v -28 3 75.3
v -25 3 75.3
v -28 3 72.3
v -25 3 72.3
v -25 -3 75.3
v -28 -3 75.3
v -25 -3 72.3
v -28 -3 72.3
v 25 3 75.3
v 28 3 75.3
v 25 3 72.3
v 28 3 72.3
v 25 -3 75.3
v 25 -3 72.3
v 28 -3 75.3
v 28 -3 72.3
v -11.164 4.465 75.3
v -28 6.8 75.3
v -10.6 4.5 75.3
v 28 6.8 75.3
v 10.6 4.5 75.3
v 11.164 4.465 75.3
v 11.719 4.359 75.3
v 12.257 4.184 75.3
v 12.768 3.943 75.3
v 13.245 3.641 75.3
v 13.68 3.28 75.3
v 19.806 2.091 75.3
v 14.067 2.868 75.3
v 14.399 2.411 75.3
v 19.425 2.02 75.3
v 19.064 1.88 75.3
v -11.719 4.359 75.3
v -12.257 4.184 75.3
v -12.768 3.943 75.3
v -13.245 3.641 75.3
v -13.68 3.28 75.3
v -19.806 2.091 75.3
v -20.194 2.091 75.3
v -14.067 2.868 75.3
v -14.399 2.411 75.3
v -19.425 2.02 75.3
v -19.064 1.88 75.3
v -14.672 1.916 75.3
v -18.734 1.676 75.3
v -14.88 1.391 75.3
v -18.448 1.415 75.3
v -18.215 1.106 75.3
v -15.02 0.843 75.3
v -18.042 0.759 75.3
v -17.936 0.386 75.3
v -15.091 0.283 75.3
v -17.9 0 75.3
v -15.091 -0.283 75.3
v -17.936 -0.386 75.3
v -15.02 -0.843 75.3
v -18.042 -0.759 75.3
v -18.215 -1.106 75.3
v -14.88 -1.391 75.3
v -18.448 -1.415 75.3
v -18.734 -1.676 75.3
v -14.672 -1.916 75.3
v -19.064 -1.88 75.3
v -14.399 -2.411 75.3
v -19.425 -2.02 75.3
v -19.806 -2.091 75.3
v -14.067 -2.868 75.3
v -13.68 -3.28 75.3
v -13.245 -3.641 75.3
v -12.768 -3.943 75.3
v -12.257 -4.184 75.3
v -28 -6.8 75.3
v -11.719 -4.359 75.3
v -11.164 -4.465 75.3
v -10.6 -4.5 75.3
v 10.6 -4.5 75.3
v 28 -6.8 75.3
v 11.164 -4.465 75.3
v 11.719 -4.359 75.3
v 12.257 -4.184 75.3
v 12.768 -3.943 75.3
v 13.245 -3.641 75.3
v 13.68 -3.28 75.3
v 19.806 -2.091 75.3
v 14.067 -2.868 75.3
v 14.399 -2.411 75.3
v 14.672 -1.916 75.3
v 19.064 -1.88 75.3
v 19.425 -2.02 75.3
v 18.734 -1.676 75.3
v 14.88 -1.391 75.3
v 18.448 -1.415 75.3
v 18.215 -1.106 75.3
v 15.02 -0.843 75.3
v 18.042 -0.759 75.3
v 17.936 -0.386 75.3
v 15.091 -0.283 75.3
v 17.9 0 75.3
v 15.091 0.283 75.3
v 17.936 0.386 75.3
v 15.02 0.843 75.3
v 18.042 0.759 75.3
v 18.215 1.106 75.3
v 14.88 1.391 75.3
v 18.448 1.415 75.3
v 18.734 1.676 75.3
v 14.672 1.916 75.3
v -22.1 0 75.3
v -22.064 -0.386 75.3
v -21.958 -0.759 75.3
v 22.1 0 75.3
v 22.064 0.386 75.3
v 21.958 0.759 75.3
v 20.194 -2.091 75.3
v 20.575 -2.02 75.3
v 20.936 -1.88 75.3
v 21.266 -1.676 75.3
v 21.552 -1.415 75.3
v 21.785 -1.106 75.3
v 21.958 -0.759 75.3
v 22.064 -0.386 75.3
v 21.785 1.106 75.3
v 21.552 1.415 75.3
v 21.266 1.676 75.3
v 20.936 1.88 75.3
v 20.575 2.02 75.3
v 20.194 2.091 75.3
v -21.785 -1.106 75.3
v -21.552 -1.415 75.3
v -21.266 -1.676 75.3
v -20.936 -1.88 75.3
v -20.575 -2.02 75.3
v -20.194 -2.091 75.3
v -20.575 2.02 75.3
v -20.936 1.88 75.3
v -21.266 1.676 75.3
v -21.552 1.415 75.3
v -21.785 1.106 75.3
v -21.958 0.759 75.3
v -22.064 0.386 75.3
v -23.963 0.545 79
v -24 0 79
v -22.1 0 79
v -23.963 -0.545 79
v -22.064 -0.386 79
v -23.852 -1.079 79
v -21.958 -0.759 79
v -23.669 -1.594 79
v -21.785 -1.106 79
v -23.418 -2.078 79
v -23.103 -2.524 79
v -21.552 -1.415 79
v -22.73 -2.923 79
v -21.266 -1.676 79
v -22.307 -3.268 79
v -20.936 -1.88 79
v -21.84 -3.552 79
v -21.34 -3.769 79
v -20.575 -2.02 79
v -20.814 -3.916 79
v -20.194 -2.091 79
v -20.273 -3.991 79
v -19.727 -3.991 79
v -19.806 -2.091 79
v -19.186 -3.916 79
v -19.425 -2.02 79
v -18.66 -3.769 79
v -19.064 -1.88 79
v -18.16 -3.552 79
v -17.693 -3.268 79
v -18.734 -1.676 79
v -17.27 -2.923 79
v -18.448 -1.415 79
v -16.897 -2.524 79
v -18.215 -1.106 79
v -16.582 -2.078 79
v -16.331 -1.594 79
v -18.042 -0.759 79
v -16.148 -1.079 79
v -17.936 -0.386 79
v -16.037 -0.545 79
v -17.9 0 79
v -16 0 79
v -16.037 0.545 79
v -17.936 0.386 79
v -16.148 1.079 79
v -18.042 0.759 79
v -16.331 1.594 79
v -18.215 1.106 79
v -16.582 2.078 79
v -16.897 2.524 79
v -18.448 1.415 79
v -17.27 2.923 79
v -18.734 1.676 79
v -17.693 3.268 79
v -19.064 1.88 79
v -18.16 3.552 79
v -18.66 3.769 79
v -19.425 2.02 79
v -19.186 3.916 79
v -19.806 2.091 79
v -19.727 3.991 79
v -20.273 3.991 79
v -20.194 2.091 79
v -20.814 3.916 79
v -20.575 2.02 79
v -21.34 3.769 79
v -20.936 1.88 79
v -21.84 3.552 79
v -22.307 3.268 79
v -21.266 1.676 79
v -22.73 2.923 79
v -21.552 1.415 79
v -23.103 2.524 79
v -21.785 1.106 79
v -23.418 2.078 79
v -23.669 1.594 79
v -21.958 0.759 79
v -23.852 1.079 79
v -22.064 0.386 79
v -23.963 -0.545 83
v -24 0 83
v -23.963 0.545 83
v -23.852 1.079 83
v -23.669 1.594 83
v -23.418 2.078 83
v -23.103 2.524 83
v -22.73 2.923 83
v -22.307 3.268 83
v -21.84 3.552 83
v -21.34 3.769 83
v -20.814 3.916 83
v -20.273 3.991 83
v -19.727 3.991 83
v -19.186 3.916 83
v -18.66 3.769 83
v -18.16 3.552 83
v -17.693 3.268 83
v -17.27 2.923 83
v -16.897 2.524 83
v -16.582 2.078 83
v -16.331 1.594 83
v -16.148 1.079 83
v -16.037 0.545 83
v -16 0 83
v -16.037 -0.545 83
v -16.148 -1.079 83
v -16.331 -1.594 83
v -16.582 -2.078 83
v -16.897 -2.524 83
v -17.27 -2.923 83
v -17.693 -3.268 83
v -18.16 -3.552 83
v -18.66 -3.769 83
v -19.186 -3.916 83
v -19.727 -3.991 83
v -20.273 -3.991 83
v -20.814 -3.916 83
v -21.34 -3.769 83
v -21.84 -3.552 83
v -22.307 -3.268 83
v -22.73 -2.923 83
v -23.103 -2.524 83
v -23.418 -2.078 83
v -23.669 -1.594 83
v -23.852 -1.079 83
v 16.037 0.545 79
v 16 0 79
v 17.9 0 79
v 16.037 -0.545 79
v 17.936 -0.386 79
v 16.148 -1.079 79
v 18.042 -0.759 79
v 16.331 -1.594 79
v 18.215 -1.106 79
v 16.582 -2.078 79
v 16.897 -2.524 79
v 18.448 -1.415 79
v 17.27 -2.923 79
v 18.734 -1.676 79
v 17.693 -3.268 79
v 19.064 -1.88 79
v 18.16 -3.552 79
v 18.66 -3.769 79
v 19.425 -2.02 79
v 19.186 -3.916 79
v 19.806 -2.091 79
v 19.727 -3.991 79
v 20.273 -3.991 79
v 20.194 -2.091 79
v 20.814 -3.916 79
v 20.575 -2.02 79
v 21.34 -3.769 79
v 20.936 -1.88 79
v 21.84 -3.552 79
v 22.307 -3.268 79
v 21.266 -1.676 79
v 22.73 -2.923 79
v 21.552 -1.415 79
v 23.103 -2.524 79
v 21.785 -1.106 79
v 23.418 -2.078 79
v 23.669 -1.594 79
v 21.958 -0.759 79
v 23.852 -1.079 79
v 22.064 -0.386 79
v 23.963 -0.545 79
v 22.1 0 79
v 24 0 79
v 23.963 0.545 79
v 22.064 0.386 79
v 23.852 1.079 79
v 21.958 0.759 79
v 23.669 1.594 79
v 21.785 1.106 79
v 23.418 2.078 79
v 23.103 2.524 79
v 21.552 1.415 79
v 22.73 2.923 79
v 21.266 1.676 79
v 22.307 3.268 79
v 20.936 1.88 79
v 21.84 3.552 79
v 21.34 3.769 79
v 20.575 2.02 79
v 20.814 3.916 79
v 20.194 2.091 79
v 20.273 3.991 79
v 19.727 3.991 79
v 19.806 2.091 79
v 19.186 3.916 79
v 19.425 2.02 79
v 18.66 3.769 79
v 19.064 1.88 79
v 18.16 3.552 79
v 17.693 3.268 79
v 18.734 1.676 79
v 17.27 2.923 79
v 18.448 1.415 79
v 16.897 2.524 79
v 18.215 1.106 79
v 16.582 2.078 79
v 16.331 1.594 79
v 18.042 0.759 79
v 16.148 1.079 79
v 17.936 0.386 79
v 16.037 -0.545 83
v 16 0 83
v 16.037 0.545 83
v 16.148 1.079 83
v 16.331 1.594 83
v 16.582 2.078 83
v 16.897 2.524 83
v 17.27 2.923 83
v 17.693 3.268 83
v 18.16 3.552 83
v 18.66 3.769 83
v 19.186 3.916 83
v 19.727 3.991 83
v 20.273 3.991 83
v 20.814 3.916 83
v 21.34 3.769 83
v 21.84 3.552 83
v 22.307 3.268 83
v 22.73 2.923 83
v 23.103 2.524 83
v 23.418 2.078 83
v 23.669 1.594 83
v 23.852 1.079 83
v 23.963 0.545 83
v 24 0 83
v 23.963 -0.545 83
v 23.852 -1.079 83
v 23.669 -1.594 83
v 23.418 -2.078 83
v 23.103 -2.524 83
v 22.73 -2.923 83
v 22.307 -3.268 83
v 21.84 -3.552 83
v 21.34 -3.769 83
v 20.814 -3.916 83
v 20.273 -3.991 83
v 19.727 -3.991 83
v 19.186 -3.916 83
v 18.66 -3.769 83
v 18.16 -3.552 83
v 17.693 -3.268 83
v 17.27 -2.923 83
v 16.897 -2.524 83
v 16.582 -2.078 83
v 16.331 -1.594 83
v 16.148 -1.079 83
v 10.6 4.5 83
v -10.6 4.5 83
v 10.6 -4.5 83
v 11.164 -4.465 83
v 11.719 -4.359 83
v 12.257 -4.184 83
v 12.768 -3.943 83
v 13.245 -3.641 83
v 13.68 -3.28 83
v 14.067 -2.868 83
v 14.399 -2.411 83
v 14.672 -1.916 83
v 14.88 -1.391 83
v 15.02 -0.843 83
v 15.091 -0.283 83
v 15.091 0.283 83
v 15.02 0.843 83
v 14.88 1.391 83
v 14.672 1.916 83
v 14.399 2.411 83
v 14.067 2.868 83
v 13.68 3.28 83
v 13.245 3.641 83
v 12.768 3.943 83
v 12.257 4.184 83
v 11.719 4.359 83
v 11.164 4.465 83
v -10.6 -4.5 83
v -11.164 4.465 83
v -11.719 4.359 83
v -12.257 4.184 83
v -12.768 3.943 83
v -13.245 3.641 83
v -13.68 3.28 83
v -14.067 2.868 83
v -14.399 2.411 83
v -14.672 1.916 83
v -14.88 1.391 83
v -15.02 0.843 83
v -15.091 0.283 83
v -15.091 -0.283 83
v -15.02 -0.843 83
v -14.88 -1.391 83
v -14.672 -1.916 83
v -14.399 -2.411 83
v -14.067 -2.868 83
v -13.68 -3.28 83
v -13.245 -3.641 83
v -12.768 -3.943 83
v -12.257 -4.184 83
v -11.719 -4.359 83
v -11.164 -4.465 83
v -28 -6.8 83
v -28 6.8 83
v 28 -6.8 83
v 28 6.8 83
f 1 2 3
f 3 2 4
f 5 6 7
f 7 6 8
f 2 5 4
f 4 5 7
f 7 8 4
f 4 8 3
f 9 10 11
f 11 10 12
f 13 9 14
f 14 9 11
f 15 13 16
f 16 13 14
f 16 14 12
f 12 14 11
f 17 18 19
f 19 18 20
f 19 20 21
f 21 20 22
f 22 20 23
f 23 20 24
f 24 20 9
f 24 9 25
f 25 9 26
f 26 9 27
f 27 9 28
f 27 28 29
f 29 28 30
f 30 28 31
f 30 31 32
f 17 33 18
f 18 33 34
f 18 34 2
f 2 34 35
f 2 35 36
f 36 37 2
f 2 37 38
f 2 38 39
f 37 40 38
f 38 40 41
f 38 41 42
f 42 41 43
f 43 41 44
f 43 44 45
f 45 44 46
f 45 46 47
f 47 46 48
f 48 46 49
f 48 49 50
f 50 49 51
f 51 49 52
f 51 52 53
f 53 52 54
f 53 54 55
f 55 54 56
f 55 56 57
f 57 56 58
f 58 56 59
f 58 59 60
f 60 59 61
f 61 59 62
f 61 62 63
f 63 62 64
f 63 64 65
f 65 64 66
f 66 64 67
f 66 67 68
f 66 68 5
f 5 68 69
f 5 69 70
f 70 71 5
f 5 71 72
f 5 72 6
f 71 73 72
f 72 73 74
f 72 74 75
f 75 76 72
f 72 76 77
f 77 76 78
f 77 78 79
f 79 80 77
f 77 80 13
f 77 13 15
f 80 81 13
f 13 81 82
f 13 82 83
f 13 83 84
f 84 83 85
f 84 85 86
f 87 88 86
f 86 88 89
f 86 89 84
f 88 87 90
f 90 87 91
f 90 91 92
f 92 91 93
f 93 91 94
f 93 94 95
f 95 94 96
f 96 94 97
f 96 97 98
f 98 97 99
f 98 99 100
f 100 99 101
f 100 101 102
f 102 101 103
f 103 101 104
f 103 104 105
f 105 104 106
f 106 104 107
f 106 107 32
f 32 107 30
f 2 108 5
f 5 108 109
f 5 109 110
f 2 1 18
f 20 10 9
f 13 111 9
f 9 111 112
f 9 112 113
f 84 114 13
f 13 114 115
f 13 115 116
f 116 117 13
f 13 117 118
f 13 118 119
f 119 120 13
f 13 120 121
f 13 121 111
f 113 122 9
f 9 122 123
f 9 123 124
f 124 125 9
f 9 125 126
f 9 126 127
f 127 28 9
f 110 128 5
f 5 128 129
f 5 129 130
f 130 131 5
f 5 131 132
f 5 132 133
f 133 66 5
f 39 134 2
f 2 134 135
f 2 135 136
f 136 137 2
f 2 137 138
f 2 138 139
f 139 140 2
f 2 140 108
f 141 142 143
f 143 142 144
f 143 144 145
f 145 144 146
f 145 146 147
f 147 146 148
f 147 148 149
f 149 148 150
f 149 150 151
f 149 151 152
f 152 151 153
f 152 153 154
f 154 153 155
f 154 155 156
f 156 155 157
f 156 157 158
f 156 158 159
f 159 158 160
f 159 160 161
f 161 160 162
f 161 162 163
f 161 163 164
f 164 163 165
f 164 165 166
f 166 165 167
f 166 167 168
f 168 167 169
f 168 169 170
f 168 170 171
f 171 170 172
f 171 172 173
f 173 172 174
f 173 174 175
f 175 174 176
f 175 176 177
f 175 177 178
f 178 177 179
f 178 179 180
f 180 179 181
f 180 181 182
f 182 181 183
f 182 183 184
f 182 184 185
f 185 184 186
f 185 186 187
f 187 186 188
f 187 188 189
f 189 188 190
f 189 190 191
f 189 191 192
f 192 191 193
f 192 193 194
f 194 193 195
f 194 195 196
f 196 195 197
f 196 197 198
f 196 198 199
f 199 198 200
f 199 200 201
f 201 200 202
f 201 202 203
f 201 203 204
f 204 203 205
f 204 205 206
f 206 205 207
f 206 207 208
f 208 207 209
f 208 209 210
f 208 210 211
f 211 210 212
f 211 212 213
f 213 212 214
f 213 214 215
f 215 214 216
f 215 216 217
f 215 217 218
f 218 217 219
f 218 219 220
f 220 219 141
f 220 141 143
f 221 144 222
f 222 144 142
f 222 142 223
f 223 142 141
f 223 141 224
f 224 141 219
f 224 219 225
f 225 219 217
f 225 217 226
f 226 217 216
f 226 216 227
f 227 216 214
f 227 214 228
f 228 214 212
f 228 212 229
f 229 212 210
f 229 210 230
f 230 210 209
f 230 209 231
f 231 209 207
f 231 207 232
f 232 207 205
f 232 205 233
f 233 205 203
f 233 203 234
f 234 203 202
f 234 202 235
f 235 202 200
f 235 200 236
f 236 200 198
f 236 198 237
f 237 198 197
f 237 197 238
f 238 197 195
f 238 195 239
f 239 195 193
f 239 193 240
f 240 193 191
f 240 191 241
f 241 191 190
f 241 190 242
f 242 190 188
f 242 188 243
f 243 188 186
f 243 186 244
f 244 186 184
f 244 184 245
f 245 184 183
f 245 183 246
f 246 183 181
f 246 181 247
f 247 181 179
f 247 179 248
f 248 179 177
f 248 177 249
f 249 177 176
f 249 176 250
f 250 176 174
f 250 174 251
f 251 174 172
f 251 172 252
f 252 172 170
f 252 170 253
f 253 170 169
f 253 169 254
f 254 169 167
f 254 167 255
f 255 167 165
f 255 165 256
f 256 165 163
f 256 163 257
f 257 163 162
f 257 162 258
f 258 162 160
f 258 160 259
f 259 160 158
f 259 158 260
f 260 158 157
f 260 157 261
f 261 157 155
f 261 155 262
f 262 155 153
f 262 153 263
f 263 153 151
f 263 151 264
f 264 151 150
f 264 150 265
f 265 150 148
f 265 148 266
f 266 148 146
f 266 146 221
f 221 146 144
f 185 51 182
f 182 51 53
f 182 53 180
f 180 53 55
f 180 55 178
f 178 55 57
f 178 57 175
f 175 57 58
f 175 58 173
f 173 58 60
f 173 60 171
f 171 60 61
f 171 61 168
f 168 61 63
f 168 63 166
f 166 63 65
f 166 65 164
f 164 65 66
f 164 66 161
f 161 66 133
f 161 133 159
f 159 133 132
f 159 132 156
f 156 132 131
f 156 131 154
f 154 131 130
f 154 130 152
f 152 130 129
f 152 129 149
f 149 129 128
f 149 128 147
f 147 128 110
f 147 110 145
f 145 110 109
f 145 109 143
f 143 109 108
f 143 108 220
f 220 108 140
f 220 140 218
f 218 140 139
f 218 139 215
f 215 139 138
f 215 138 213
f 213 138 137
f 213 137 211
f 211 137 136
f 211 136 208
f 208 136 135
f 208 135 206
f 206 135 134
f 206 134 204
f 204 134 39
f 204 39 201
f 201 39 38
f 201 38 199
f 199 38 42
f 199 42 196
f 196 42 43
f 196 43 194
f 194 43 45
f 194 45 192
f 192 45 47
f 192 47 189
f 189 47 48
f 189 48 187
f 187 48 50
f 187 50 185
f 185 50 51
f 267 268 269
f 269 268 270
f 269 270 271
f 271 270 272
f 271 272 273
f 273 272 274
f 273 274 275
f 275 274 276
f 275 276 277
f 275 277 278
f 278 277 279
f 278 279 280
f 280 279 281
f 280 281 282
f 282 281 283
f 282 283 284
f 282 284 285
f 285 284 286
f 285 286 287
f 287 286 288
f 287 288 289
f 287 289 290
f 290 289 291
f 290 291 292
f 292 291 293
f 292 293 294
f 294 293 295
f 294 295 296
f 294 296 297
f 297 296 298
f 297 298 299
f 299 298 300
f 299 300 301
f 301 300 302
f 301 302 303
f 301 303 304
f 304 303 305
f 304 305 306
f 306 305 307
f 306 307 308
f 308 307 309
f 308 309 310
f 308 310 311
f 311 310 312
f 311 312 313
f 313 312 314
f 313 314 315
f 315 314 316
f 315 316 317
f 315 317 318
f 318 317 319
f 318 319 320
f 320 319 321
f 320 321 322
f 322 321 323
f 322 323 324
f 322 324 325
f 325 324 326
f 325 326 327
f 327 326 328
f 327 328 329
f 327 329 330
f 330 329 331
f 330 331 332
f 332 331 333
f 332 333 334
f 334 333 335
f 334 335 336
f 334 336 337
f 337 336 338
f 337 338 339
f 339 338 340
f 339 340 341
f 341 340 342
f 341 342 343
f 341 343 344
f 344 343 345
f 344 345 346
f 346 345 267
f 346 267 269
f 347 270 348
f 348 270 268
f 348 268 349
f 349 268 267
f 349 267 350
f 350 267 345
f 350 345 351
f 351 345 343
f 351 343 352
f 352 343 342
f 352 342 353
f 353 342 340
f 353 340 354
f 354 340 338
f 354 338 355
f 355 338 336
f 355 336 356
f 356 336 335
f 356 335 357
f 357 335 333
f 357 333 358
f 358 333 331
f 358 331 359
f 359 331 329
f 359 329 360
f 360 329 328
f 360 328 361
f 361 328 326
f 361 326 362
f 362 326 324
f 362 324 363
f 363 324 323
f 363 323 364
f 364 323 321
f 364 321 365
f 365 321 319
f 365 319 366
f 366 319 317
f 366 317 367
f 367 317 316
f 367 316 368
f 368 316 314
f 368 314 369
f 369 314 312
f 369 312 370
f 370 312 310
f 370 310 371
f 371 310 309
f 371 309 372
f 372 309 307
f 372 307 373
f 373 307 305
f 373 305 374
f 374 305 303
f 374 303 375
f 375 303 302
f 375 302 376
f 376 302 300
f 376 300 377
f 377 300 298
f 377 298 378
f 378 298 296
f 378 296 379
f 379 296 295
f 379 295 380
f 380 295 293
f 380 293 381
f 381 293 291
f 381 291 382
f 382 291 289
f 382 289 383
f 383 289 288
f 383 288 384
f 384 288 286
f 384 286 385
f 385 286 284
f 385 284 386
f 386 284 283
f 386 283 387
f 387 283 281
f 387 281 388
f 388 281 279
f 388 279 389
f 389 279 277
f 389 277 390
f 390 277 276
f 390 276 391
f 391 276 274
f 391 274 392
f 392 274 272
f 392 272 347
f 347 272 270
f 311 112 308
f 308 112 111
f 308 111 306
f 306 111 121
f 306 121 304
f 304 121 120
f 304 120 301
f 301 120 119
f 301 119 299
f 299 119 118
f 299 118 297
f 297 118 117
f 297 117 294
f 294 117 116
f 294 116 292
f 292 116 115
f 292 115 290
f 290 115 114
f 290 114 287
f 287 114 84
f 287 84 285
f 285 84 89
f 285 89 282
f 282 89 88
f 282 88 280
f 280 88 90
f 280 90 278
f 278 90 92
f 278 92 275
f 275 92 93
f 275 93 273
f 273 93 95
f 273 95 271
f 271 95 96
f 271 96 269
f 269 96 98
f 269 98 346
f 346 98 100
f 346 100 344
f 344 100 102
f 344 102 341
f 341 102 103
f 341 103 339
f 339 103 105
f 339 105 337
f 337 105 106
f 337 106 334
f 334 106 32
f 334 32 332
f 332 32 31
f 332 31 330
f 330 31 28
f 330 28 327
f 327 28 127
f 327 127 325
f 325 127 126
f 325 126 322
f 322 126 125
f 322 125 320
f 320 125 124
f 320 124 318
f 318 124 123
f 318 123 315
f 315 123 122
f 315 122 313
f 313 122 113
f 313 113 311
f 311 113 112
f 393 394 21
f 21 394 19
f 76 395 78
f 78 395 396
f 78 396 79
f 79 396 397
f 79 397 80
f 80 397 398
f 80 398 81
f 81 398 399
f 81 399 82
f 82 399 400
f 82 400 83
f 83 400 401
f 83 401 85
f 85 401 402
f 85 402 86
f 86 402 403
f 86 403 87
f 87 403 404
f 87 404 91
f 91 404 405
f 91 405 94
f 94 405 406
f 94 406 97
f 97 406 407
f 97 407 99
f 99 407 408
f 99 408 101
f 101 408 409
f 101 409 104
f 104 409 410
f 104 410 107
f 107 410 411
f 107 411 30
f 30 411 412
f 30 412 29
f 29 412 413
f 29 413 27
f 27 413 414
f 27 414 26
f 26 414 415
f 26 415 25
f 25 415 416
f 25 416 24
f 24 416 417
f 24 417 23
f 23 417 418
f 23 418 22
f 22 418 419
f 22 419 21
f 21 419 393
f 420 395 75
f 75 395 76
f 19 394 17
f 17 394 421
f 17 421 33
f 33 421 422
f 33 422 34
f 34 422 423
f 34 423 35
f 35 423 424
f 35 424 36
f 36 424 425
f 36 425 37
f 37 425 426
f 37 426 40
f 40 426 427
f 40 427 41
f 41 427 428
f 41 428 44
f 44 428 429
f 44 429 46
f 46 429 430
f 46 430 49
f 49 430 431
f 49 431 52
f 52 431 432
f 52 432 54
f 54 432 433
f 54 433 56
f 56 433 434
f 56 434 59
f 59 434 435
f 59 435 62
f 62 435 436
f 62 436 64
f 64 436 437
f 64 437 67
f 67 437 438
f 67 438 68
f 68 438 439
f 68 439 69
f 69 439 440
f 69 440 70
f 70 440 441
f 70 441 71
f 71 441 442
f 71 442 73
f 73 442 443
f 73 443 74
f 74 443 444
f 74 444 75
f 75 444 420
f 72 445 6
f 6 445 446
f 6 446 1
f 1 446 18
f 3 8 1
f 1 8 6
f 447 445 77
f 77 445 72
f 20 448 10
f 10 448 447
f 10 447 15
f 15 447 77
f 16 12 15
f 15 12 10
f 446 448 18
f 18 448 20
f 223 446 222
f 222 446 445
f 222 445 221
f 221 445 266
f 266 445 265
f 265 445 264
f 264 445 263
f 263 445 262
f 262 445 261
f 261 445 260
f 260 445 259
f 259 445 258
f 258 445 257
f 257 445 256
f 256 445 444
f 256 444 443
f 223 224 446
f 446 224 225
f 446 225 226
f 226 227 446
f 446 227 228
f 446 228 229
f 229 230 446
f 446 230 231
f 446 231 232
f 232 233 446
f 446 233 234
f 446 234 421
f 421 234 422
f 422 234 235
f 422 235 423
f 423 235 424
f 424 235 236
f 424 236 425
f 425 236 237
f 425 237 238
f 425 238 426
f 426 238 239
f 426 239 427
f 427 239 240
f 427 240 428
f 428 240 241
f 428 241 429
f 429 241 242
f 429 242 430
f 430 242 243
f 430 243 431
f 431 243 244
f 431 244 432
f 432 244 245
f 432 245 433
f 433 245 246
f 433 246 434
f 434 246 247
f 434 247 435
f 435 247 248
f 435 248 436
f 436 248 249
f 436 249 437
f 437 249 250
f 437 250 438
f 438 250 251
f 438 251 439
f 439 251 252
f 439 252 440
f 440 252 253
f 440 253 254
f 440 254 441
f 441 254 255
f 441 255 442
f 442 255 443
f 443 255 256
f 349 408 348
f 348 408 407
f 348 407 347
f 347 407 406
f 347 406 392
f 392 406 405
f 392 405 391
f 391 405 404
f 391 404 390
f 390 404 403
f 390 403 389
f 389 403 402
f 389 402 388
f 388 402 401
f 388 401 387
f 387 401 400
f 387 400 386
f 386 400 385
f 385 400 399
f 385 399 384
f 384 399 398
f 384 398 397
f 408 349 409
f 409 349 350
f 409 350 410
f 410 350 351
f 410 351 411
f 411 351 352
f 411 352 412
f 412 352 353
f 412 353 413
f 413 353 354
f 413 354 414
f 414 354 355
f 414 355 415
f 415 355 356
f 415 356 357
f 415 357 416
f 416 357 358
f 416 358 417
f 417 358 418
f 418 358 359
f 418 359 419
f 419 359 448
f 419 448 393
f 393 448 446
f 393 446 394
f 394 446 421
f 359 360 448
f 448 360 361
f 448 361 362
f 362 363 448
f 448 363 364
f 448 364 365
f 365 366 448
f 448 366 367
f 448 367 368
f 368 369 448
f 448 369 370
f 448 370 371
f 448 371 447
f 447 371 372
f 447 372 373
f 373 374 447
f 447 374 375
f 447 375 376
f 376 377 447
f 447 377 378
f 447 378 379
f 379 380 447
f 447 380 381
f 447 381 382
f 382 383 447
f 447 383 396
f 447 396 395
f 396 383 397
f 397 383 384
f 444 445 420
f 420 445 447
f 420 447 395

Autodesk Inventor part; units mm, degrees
ref_plane "YZ Plane" through (0, 0, 0) normal (1, 0, 0) x (0, 1, 0)
ref_plane "XZ Plane" through (0, 0, 0) normal (0, 1, 0) x (-1, 0, 0)
ref_plane "Work Plane15" through (0, 0, 83) normal (0, 0, 1) x (1, 0, 0)
sketch "Sketch35" plane through (0, 0, 83) normal (0, 0, 1) x (1, 0, 0)
  line L0 (-53.15, -19.2) -> (-22.85, -19.2)
  line L1 (-22.85, -19.2) -> (-22.85, -26.8)
  line L2 (-22.85, -26.8) -> (-53.15, -26.8)
  line L3 (-53.15, -26.8) -> (-53.15, -19.2)
  line L4 (-53.15, -26.8) -> (-22.85, -19.2) construction
  line L5 (-22.85, -26.8) -> (-53.15, -19.2) construction
  line L6 (-53.15, -23) -> (-49.35, -23) construction
  arc A0 (-49.35, -19.2) -> (-53.15, -23) centre (-49.35, -23) ccw
  arc A1 (-53.15, -23) -> (-49.35, -26.8) centre (-49.35, -23) ccw
  line L7 (-22.85, -23) -> (-26.65, -23) construction
  arc A2 (-22.85, -23) -> (-26.65, -19.2) centre (-26.65, -23) ccw
  arc A3 (-26.65, -26.8) -> (-22.85, -23) centre (-26.65, -23) ccw
  line L8 (-38, -26.8) -> (-38, -23)
  line L9 (-38, -26.8) -> (-34.2, -26.8) construction
  line L10 (-28, 6.8) -> (28, 6.8)
  line L11 (28, 6.8) -> (28, -6.8)
  line L12 (28, -6.8) -> (-28, -6.8)
  line L13 (-28, -6.8) -> (-28, 6.8)
  line L14 (-11.3, -22) -> (-6.85, -22) construction
  line L15 (3, -17.55) -> (3, -26.45)
  line L16 (-11.5, -17.5) -> (17.5, -17.5)
  line L17 (17.5, -17.5) -> (17.5, -26.5)
  line L18 (17.5, -26.5) -> (-11.5, -26.5)
  line L19 (-11.5, -26.5) -> (-11.5, -17.5)
  line L20 (-11.5, -22) -> (-7, -22)
  arc A4 (-7, -17.5) -> (-7, -26.5) centre (-7, -22) ccw
  arc A5 (13, -26.5) -> (13, -17.5) centre (13, -22) ccw
  line L21 (-15.1, 4.5) -> (15.1, 4.5)
  line L22 (15.1, 4.5) -> (15.1, -4.5)
  line L23 (15.1, -4.5) -> (-15.1, -4.5)
  line L24 (-15.1, -4.5) -> (-15.1, 4.5)
  line L25 (-15.1, 0) -> (-10.6, 0)
  arc A6 (-10.6, 4.5) -> (-10.6, -4.5) centre (-10.6, 0) ccw
  arc A7 (10.6, -4.5) -> (10.6, 4.5) centre (10.6, 0) ccw
  line L26 (0, 4.5) -> (0, -4.5)
  point P0 (0, 0)
  point P1 (69, 73)
  point P2 (-22.85, -23)
  point P3 (-22.85, -23)
  point P4 (-26.65, -26.8)
  point P5 (-26.65, -19.2)
  point P6 (13, -26.5)
  point P7 (13, -17.5)
  point P8 (0, 0)
  dimension "d253" = 7.6
  dimension "d265" = 3.8
  dimension "d316" = 3.8
  dimension "d317" = 90
  dimension "d359" = 29
  dimension "d360" = 9
  dimension "d361" = 4.5
  dimension "d362" = 30.2
  dimension "d363" = 9
  dimension "d364" = 4.5
  dimension "d365" = 56
  dimension "d366" = 13.6
  dimension "d367" = 2.3
  dimension "d368" = 12.9
extrude "Extrusion25" add sketch "Sketch35" against normal blind 7.7 contours L10 L11 L12 L13 | L21 A6 L24 | A6 L23 L24 | L21 L22 A7 | L22 L23 A7
sketch "Sketch46" plane through (0, 0, 83) normal (0, 0, 1) x (1, 0, 0)
  point P0 (0, 0)
  point P1 (-20, 0)
  point P2 (20, 0)
hole "Hole8" at (20, 0, 83) at (-20, 0, 83) direction (0, 0, -1) diameter 4.2 depth 7.7 counterbore diameter 8 counterbore depth 4
sketch "Sketch47" plane through (0, 0, 75.3) normal (0, 0, -1) x (-1, 0, 0)
  line L0 (28, -3) -> (25, -3)
  line L1 (25, -3) -> (25, 3)
  line L2 (25, 3) -> (28, 3)
  line L3 (28, 3) -> (28, -3)
  line L4 (0, 0) -> (0, 11)
  line L5 (-28, -3) -> (-25, -3)
  line L6 (-25, -3) -> (-25, 3)
  line L7 (-25, 3) -> (-28, 3)
  line L8 (-28, 3) -> (-28, -3)
  line L9 (28, -6.8) -> (28, 6.8) projected
  dimension "d378" = 3
  dimension "d379" = 6
  dimension "d380" = 0
extrude "Extrusion34" add sketch "Sketch47" along normal blind 3
properties part number "cameraModuleEnclosure_3DPrint"
